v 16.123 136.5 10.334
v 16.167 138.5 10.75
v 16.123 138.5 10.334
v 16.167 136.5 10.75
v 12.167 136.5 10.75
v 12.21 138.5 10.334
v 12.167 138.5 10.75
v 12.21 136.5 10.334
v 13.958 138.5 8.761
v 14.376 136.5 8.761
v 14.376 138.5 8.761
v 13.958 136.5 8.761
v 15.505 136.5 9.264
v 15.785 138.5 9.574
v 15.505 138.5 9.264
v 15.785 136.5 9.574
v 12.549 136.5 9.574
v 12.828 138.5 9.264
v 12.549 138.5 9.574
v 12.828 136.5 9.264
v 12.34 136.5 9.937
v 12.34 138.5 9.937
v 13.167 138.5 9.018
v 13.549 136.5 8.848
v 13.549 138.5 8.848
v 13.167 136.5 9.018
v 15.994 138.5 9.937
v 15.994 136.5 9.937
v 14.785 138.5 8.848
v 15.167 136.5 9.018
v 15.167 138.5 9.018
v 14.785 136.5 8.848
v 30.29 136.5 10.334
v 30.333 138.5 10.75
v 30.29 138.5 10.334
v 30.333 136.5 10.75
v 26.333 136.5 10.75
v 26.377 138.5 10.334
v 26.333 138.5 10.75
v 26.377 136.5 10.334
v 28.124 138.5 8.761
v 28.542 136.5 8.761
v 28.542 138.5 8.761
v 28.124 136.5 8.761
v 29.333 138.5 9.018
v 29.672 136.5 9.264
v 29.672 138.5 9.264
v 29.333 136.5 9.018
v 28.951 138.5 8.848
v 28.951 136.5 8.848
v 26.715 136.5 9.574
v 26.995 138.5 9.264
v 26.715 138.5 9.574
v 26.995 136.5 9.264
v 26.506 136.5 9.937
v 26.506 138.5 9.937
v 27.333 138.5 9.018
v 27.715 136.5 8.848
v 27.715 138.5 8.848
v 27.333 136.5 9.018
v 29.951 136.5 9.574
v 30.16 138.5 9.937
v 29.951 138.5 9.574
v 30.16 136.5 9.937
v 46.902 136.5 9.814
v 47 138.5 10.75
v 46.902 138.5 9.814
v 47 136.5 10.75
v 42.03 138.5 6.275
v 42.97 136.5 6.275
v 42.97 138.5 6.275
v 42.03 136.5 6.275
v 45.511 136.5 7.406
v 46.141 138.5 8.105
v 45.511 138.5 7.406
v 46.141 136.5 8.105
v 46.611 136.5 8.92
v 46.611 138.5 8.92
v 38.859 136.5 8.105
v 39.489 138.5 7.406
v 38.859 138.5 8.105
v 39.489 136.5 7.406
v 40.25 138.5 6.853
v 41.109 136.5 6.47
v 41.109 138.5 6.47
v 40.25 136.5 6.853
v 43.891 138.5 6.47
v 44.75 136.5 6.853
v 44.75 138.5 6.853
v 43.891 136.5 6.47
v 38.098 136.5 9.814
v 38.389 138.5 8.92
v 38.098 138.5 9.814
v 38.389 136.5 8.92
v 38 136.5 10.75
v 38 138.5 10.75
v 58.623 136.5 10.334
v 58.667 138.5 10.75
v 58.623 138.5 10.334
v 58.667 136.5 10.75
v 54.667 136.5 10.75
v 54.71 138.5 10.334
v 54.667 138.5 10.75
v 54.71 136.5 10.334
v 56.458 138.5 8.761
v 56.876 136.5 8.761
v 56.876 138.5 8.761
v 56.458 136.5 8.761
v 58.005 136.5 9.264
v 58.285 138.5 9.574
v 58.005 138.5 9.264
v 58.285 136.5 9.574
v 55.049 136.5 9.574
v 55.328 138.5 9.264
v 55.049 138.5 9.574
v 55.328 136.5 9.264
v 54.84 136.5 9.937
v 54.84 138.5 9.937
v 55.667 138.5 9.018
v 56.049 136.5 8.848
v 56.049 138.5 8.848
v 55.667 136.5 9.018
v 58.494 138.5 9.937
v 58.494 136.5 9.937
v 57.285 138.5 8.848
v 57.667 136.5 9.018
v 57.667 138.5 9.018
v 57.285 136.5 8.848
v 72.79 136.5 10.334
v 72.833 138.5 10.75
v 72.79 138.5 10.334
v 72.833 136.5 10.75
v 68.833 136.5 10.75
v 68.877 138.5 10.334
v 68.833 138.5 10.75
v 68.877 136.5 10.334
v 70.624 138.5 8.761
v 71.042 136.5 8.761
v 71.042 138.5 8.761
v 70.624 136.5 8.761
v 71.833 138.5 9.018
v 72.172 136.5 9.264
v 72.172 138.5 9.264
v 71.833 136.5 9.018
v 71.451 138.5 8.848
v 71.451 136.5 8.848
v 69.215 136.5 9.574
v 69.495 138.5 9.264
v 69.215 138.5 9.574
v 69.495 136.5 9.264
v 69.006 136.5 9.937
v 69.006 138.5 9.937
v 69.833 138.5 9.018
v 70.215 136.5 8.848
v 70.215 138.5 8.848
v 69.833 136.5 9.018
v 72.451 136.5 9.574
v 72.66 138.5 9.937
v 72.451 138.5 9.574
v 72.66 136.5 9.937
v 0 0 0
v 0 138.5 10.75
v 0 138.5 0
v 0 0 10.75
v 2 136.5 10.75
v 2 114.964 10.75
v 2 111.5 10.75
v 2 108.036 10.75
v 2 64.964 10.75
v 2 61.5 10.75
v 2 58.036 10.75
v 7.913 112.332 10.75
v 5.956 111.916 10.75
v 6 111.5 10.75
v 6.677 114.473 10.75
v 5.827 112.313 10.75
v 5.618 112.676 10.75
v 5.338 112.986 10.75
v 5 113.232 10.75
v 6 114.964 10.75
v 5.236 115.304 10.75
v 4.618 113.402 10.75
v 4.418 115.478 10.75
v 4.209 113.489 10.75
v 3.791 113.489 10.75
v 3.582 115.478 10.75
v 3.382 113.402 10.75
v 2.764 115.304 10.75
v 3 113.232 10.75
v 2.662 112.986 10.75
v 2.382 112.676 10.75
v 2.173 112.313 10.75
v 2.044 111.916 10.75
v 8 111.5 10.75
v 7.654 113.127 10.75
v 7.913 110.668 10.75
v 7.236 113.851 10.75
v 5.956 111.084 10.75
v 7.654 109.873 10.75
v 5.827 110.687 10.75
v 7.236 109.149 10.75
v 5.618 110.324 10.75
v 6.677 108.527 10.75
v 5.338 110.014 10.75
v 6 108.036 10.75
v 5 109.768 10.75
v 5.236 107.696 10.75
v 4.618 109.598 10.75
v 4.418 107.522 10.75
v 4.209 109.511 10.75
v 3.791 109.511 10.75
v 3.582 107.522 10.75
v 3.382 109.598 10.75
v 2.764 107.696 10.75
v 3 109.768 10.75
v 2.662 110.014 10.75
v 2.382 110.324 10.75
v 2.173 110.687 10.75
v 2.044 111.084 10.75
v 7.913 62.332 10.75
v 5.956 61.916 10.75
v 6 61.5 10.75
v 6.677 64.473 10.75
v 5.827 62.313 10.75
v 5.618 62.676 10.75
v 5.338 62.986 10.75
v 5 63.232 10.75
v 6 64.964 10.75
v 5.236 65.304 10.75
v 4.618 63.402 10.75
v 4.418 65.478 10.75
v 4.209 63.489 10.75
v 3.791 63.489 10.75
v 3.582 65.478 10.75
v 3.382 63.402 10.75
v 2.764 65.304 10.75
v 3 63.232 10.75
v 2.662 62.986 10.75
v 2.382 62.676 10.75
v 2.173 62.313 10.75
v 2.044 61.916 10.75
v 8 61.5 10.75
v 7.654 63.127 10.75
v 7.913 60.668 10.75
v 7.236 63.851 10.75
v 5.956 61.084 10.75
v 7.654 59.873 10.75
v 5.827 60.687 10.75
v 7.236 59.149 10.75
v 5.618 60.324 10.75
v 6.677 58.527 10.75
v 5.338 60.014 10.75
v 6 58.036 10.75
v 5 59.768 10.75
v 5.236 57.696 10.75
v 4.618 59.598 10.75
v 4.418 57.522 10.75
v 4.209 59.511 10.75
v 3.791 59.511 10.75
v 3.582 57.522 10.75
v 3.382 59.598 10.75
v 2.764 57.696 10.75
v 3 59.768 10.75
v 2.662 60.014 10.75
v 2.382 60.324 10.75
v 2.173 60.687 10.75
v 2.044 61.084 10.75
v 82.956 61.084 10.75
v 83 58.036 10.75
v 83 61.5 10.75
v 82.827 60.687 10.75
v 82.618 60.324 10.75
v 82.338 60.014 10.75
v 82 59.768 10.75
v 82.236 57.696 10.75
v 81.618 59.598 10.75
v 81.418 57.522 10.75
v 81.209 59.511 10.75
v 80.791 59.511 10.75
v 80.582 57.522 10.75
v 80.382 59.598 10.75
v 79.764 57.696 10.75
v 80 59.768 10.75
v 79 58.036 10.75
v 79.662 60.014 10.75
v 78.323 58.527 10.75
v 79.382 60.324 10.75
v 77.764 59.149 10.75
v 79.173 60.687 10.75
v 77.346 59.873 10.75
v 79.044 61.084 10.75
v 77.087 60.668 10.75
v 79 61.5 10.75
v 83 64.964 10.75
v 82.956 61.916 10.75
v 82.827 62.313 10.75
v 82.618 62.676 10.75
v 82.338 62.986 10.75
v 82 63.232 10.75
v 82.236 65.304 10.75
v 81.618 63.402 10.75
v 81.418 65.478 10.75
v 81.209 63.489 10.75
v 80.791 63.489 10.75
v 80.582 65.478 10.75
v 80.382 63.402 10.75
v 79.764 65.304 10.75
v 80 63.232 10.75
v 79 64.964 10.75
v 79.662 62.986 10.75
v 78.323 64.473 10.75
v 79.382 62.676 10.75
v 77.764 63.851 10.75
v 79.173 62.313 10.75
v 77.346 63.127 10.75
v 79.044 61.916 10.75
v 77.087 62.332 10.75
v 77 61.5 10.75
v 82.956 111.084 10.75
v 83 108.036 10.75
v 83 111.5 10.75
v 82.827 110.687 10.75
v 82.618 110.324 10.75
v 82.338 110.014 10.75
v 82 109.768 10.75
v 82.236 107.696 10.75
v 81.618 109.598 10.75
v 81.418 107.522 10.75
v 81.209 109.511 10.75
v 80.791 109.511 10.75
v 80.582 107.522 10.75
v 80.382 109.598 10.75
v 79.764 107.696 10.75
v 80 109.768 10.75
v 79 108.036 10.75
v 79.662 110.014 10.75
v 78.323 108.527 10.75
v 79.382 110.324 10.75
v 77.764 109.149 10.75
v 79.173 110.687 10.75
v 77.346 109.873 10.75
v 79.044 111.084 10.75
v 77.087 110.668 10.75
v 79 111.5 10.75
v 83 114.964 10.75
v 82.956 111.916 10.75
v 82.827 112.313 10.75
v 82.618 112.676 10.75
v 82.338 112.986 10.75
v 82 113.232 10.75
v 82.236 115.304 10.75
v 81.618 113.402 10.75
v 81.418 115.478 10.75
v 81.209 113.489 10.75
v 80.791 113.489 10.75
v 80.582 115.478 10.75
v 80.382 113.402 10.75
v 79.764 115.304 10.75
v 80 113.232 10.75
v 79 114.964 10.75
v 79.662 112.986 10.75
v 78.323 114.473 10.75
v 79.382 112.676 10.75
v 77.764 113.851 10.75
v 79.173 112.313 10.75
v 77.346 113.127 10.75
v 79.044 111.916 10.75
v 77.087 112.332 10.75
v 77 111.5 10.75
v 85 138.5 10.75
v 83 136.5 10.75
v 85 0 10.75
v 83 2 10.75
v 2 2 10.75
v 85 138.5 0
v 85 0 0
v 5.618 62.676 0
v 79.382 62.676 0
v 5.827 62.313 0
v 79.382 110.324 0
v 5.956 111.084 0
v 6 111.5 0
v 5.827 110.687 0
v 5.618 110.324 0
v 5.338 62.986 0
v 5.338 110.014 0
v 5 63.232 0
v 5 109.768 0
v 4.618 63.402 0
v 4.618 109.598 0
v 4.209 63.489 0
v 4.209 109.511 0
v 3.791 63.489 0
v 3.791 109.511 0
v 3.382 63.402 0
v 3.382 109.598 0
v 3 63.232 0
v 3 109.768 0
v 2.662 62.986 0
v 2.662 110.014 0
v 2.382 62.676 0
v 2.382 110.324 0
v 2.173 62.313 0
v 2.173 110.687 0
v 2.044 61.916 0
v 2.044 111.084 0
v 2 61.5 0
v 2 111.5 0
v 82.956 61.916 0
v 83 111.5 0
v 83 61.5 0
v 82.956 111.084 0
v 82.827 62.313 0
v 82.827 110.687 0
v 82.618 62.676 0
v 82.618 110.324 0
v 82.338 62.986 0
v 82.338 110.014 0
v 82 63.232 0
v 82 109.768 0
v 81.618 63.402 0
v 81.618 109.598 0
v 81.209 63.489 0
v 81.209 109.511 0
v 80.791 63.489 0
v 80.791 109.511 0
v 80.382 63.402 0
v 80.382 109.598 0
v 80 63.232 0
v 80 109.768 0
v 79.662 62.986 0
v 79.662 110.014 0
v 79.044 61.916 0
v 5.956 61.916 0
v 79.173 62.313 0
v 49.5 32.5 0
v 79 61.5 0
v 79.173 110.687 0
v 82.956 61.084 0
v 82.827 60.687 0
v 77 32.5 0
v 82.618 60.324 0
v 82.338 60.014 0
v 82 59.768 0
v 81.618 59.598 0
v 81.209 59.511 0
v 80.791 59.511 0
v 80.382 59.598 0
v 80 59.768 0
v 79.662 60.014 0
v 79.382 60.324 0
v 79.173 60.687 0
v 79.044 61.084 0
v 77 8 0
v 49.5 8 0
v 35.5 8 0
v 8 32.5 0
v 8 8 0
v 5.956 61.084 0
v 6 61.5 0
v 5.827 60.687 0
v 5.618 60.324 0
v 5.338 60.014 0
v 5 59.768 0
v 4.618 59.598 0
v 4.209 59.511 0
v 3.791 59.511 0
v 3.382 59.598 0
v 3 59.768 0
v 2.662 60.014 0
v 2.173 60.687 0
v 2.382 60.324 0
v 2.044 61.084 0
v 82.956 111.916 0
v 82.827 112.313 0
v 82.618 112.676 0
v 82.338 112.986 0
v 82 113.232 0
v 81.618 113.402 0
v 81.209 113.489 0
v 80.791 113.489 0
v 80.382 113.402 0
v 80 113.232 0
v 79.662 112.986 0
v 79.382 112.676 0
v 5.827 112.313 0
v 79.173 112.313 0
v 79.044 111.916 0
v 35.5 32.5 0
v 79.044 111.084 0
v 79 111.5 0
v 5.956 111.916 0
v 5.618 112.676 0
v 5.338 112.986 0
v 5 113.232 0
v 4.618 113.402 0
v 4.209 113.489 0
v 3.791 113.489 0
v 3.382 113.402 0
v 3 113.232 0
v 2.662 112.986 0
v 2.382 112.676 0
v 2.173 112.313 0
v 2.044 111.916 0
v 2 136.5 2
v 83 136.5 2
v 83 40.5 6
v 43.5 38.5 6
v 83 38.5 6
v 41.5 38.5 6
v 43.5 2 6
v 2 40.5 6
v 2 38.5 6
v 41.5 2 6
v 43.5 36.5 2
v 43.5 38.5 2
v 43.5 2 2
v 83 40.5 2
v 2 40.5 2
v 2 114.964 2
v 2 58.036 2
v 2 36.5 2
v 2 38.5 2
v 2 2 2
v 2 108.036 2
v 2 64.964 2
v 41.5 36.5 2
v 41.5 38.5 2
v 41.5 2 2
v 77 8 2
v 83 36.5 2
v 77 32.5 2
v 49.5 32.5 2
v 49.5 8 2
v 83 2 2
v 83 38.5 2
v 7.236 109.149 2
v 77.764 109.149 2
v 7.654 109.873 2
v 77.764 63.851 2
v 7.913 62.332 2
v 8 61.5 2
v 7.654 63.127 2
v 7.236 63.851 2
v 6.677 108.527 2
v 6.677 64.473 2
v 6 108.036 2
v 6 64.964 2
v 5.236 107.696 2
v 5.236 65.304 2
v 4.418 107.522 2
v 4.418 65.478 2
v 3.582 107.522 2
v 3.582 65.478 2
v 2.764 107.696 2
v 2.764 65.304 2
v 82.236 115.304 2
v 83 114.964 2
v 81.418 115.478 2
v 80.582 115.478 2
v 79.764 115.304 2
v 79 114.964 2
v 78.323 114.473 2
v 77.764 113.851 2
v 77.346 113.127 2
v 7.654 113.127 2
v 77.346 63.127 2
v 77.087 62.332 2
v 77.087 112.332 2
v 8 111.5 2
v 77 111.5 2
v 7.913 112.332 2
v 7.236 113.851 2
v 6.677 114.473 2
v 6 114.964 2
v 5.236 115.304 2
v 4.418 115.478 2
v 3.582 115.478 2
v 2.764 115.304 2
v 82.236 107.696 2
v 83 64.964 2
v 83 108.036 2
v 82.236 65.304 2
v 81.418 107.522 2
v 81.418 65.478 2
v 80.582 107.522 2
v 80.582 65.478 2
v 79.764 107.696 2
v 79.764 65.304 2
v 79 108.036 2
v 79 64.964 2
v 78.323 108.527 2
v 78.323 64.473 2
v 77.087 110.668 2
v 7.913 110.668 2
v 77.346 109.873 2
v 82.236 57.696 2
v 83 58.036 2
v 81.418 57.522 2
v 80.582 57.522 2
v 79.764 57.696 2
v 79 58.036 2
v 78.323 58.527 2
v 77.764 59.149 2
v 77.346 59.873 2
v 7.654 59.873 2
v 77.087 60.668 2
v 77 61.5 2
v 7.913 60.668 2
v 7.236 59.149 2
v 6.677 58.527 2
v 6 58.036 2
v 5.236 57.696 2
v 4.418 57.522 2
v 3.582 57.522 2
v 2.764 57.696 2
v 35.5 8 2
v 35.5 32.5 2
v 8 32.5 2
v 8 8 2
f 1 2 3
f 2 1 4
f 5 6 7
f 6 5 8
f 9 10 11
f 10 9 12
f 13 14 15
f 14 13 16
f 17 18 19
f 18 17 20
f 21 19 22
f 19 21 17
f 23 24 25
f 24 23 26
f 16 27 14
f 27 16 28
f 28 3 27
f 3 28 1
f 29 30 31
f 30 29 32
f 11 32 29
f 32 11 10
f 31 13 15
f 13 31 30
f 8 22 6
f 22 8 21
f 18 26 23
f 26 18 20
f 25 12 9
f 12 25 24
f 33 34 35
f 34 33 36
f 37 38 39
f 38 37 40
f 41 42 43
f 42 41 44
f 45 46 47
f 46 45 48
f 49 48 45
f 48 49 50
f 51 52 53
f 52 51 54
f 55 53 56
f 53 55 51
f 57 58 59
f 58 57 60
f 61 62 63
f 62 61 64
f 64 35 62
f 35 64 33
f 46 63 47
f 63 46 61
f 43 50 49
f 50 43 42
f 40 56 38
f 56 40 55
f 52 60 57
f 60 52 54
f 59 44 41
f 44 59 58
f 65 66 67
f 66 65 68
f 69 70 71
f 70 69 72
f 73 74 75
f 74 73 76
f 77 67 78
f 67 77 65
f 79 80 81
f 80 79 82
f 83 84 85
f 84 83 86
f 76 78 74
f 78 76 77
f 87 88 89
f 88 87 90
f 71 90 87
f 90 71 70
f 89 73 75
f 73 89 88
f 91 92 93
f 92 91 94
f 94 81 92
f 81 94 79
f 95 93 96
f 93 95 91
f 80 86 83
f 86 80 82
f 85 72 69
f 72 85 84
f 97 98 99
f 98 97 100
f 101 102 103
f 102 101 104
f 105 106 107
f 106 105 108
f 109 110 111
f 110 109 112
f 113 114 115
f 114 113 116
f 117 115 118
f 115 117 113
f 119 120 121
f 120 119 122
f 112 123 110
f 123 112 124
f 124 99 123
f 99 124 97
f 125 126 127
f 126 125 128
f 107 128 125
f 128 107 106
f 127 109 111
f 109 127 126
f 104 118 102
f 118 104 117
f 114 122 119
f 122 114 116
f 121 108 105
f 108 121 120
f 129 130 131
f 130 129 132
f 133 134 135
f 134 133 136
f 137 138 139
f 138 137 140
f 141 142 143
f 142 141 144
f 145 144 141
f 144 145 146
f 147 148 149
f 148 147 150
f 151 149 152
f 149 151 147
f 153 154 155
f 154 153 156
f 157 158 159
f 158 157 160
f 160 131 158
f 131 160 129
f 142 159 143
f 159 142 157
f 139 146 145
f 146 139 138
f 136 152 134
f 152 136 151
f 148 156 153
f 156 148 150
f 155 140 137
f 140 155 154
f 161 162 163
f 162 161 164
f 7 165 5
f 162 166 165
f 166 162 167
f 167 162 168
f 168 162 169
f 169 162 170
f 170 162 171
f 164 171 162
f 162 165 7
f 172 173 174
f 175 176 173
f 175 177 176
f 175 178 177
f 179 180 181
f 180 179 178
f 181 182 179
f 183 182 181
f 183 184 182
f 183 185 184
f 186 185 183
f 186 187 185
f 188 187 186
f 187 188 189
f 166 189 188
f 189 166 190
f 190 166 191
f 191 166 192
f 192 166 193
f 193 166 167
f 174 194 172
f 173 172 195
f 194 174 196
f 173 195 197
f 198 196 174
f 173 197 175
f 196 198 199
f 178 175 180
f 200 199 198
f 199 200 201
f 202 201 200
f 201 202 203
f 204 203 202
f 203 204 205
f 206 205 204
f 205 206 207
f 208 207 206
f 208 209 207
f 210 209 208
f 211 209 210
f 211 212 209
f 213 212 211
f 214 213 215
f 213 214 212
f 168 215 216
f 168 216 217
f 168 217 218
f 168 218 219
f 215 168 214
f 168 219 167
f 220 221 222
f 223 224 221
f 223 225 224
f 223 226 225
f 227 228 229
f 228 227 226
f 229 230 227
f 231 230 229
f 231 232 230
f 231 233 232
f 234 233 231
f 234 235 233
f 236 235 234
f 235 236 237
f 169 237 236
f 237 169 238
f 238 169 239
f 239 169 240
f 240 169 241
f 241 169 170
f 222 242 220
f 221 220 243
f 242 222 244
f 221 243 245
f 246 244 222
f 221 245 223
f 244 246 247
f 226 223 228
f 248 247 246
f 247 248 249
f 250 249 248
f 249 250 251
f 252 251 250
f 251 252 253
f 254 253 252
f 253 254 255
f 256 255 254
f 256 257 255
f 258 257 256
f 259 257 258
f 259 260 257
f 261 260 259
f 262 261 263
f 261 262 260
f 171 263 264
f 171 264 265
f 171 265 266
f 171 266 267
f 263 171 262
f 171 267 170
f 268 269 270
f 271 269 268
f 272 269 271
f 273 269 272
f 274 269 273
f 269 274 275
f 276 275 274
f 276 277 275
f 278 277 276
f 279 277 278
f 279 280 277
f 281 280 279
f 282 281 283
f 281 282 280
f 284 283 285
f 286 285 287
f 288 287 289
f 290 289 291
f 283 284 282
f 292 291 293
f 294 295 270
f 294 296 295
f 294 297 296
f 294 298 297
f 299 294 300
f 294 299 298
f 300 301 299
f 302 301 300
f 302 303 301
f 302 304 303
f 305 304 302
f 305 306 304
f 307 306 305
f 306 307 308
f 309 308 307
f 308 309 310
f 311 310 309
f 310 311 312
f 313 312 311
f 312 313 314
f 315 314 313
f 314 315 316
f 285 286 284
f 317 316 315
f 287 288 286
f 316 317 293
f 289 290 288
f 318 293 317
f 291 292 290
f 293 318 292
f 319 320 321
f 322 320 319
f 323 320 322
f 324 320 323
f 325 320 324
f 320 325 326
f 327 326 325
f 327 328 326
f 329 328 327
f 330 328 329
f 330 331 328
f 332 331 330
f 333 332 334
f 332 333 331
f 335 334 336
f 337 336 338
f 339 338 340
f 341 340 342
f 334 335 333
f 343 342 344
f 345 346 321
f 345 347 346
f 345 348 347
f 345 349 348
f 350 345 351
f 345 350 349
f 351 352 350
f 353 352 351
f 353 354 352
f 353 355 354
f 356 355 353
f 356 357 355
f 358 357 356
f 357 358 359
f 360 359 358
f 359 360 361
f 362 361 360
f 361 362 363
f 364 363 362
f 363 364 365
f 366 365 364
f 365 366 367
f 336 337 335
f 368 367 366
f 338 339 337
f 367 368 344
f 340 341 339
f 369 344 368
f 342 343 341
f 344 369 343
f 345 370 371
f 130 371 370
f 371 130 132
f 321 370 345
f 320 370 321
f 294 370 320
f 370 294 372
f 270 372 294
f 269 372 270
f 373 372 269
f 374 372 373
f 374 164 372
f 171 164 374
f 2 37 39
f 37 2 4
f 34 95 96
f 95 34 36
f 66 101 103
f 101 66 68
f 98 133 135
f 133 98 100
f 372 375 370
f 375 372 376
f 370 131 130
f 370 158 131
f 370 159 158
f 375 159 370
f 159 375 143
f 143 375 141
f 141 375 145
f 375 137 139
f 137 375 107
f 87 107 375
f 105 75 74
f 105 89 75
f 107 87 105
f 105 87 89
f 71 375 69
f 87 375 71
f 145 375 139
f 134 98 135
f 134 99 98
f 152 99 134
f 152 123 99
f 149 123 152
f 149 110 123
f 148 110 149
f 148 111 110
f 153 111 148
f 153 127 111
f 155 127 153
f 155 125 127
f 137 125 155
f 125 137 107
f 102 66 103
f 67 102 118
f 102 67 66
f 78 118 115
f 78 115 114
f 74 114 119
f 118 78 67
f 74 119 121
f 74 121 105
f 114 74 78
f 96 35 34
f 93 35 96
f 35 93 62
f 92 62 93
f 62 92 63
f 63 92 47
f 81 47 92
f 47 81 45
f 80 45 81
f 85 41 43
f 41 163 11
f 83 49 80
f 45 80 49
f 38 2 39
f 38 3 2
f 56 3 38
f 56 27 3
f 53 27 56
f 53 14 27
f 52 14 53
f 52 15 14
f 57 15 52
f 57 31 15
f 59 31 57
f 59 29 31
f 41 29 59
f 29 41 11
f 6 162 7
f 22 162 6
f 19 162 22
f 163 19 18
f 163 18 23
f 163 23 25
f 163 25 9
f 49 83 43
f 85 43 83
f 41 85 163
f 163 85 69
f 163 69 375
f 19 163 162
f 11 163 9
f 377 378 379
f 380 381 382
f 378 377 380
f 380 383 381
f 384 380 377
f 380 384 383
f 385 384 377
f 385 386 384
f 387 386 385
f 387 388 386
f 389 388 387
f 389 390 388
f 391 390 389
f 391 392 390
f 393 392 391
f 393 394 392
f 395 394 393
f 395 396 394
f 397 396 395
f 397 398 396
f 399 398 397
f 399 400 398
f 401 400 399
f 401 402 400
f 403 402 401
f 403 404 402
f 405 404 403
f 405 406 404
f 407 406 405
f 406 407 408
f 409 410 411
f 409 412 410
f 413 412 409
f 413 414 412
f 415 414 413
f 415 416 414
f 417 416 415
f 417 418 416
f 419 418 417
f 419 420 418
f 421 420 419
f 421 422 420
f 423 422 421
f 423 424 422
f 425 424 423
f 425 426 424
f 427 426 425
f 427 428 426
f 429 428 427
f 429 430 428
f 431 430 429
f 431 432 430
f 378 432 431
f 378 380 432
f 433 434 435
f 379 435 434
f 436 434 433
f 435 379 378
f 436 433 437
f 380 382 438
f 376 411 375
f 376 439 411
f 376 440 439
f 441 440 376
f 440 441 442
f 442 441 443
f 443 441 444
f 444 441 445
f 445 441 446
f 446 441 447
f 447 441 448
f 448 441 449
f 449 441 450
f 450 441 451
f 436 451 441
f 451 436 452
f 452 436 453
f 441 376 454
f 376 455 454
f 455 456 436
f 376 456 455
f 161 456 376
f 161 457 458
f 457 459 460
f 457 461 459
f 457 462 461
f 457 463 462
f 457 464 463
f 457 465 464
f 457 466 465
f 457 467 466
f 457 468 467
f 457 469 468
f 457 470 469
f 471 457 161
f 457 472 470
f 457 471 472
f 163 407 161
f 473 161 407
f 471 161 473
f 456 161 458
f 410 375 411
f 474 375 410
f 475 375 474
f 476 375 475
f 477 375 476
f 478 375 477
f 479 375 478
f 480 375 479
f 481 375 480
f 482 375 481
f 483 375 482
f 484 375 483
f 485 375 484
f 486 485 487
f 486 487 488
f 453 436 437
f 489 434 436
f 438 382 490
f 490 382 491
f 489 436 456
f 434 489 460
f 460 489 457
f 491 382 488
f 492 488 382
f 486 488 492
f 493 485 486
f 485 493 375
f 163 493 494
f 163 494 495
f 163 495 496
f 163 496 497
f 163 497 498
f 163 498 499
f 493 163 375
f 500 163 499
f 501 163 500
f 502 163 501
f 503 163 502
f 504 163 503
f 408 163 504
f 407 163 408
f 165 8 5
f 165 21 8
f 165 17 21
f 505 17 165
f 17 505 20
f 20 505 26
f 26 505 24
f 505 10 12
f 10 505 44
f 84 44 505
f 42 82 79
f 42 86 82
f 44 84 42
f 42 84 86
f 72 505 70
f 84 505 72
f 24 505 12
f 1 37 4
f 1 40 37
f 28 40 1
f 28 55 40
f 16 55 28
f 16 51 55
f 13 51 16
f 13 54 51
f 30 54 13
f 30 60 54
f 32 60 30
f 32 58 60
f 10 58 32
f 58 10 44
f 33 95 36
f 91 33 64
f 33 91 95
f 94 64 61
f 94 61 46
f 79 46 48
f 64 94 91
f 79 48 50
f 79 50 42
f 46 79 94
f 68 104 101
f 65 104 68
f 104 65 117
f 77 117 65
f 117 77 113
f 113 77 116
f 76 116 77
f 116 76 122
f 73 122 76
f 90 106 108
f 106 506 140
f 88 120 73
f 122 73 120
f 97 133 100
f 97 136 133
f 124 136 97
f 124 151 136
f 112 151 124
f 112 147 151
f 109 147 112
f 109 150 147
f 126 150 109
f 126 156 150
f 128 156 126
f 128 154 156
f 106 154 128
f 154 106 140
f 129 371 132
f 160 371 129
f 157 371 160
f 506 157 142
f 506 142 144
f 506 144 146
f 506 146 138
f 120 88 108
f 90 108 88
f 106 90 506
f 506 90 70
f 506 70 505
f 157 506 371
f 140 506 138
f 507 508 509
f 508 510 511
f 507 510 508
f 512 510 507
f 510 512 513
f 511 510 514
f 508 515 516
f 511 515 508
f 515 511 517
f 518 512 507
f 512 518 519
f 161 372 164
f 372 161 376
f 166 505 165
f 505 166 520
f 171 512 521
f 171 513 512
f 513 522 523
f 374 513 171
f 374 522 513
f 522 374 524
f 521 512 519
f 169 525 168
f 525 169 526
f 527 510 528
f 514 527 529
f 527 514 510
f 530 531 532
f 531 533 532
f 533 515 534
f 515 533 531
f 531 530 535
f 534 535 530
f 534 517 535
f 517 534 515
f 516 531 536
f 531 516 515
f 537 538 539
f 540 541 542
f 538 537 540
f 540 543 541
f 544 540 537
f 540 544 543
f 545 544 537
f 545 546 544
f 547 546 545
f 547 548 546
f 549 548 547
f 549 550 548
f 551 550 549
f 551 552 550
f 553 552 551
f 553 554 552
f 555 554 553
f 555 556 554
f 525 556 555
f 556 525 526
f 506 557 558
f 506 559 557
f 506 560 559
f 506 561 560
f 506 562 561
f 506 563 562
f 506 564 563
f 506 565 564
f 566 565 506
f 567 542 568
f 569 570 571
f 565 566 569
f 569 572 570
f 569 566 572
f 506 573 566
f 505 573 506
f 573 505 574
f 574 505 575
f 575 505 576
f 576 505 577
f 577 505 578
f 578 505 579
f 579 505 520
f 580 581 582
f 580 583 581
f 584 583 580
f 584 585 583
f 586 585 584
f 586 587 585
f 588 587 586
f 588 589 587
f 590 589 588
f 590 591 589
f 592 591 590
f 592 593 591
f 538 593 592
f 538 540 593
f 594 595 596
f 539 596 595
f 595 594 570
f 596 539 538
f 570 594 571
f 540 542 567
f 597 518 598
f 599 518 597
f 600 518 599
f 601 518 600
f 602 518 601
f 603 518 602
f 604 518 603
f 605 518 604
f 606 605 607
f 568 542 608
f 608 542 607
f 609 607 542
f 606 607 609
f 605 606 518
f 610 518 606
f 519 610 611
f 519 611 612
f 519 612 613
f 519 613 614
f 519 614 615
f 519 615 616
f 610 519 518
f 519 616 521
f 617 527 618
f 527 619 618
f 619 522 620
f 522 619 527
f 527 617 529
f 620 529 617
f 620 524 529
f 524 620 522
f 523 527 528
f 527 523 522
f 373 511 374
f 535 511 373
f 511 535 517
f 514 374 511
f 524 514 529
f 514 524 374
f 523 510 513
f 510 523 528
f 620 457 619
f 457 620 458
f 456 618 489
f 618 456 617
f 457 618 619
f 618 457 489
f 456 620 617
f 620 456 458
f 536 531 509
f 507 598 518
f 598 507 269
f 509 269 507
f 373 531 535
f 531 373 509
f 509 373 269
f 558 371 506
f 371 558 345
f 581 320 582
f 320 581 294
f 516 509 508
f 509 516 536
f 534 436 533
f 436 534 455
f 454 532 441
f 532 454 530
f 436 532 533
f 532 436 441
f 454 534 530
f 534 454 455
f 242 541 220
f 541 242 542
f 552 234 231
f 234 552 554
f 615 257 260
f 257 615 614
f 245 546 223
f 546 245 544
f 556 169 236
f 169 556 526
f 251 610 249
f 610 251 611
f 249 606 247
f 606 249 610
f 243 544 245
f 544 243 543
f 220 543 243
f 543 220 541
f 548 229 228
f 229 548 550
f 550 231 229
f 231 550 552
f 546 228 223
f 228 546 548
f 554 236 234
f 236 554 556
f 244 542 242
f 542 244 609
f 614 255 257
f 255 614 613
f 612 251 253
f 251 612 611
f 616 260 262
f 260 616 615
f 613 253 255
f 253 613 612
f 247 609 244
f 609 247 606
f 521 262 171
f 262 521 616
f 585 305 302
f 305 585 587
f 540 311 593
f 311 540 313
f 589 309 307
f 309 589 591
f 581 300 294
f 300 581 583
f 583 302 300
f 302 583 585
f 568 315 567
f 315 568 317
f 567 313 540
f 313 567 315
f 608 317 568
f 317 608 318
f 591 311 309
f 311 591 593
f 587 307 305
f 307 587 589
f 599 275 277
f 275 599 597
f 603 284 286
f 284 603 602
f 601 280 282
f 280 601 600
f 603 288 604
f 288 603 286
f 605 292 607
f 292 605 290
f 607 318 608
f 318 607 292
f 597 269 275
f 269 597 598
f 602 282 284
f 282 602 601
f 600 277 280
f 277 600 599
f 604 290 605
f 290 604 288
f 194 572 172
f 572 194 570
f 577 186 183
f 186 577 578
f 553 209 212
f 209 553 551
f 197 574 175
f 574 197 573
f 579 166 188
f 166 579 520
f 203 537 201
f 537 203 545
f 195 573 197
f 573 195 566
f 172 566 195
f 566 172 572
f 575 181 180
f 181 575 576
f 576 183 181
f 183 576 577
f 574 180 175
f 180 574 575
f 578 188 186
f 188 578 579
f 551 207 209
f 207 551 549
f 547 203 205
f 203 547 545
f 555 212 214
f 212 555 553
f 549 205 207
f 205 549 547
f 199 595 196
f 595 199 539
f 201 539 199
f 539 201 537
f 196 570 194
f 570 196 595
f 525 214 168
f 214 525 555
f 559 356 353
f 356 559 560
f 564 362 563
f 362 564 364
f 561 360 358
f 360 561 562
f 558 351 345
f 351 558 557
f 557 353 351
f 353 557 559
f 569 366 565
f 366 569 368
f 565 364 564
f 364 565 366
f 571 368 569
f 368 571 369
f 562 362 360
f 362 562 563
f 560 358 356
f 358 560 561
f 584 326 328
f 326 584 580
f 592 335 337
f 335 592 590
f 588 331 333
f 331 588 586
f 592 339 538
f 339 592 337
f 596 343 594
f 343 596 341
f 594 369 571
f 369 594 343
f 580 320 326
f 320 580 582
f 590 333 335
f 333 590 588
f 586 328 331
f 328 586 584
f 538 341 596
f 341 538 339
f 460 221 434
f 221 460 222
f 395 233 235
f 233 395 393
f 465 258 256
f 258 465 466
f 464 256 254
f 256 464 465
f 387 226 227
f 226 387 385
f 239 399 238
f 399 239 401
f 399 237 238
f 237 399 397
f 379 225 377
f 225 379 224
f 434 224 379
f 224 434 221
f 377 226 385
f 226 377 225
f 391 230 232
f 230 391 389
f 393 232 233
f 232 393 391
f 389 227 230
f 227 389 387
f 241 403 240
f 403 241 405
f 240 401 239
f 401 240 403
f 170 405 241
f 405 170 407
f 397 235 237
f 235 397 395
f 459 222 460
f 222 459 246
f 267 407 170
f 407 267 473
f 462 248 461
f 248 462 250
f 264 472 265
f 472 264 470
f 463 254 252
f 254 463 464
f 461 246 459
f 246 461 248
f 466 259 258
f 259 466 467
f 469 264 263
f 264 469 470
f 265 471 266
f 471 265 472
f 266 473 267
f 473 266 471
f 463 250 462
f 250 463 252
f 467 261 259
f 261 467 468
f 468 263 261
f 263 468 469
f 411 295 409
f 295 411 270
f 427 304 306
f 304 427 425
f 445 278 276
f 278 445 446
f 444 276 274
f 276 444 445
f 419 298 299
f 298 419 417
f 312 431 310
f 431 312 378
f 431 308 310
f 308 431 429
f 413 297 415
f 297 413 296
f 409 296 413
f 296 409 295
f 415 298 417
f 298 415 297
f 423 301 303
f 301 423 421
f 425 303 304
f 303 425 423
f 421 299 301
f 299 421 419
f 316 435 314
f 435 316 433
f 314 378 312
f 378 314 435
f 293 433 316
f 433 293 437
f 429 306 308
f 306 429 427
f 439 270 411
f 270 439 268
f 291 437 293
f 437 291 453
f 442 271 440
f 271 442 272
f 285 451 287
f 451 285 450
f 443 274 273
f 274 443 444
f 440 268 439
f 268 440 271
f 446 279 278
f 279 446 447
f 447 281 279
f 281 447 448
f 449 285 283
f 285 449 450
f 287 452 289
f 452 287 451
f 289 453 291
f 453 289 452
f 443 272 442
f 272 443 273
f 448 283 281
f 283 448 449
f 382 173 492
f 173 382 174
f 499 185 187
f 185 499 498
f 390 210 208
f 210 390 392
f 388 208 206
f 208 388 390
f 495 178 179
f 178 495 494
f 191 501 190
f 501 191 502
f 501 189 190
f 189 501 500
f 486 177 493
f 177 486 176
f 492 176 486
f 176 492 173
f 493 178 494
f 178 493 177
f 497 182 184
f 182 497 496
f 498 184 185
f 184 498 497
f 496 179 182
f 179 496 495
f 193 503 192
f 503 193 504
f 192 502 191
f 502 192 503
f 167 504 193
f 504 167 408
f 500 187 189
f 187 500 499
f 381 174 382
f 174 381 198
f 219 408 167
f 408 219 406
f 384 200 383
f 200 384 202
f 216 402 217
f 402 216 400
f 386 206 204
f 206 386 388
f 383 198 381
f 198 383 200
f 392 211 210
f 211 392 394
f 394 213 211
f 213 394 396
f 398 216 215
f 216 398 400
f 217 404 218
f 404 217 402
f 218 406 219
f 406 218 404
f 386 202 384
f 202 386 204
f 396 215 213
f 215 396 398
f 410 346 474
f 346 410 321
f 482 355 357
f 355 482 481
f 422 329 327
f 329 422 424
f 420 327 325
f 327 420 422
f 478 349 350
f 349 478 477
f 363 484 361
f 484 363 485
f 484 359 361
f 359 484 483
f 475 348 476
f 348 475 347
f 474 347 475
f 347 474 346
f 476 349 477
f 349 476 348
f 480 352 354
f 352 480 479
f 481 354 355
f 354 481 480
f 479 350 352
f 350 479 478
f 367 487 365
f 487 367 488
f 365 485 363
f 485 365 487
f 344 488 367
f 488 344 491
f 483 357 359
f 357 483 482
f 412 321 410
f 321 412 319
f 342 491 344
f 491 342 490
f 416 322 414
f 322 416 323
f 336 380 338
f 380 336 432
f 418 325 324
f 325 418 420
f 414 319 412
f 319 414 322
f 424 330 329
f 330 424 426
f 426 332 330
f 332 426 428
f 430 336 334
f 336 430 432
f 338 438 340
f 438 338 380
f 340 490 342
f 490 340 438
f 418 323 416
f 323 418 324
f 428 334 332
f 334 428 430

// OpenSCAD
// Bottom piece for Shelly EM housing
// This version includes access holes for:
// - Viewing status LEDs
// - Accessing control buttons
// - Allowing some ventilation
// Must be paired with shelly-housing-top.scad for complete assembly

// 0.5mm added to each dimension for clearance
// Shelly EM dimensions
sx = 39.5;
sy = 36.5;
sz = 17.5;

// Cutout dimensions
sc = 6;

// Wall width and lip height
ww = 2;
lh = 4;

$fn=30;

// Delta for subtraction
d = 0.1;

// Size of space for wires
wiredepth = 100;

module shelly() {
    difference() {
        cube([sx+ww*2, sy+ww*2, ww+lh]);
        translate([ww, ww, ww]) {
            cube([sx, sy, lh+d]);
        }
        translate([ww+sc, ww+sc, -d]) {
            cube([sx-sc*2, sy-sc*2, ww+d*2]);
        }
    }
}

module box() {
    shelly();
    translate([sx+ww, 0, 0]) {
        shelly();
    }
    // Left side
    cube([ww, sy+wiredepth, ww+sz/2]);
    // Bottom side
    cube([sx*2+ww*3, ww, ww+sz/2]);
    // Right side
    translate([(ww+sx)*2, 0, 0]) {
        cube([ww, sy+wiredepth, ww+sz/2]);
    }
    // Bottom fill
    translate([0, sy, 0]) {
        cube([sx*2+ww*3, wiredepth, ww]);
    }
    // Top side with holes
    translate([0, sy+wiredepth, 0]) {
        difference() {
            cube([sx*2+ww*3, ww, ww+sz/2]);
            // 9mm hole in middle
            // 4mm holes evenly spaced to left and right of middle
            for (hole=[1:5]) {
                diam = hole == 3 ? 9 : 4;
                translate([(sx*2+ww*3)*hole/6, -d, ww+sz/2]) {
                    rotate([270, 0, 0]) {
                        cylinder(h=ww+2*d, d=diam);
                    }
                }            
            }
        }
    }
}

difference() {
    union() {
        box();
        // Screw holes outside
        translate([2+ww, sy+25, 0]) {
            cylinder(h=ww+sz/2, d=4+ww*2);
        }
        translate([(ww+sx)*2-ww, sy+25, 0]) {
            cylinder(h=ww+sz/2, d=4+ww*2);
        }
        translate([2+ww, sy+wiredepth-25, 0]) {
            cylinder(h=ww+sz/2, d=4+ww*2);
        }
        translate([(ww+sx)*2-ww, sy+wiredepth-25, 0]) {
            cylinder(h=ww+sz/2, d=4+ww*2);
        }
    }
    // Screw holes
    translate([2+ww, sy+25, -d]) {
        cylinder(h=ww+sz/2+2*d, d=4);
    }
    translate([(ww+sx)*2-ww, sy+25, -d]) {
        cylinder(h=ww+sz/2+2*d, d=4);
    }
    translate([2+ww, sy+wiredepth-25, -d]) {
        cylinder(h=ww+sz/2+2*d, d=4);
    }
    translate([(ww+sx)*2-ww, sy+wiredepth-25, -d]) {
        cylinder(h=ww+sz/2+2*d, d=4);
    }
}
